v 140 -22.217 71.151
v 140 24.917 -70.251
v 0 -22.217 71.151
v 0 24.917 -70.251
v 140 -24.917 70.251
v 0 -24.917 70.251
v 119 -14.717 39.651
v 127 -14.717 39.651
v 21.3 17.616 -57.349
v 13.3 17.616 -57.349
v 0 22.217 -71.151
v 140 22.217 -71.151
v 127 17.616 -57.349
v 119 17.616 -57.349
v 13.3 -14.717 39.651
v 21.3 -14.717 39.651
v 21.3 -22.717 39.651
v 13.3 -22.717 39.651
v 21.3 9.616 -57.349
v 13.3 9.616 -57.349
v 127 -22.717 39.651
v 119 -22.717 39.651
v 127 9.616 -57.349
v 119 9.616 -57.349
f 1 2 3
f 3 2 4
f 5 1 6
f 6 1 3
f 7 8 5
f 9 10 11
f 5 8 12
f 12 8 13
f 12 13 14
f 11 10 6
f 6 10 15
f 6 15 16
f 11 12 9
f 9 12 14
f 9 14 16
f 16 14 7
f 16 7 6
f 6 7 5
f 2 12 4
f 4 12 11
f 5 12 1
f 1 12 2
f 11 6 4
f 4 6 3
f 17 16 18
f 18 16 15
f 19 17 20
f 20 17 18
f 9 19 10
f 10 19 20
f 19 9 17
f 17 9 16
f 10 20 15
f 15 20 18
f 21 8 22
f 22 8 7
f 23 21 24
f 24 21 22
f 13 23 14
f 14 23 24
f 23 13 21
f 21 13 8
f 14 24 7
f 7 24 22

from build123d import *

# Parameters (mm, degrees)
SALIENTE_EXTRUIR1_DEPTH = 140
SALIENTE_EXTRUIR2_START = 13.3
SALIENTE_EXTRUIR2_DEPTH = 8
SALIENTE_EXTRUIR3_START = 119
SALIENTE_EXTRUIR3_DEPTH = 8


with BuildPart() as part:
    # Croquis1 → Saliente-Extruir1 (new body)
    with BuildSketch(Plane(origin=(0, 0, 0), x_dir=(0, 0, -1), z_dir=(1, 0, 0))):
        Polygon((-71.151247354, -22.217082451), (-70.251247354, -24.917082451), (-39.651247354, -14.717082451), (57.348752646, 17.616250882), (71.151247354, 22.217082451), (70.251247354, 24.917082451), align=None)
    extrude(amount=SALIENTE_EXTRUIR1_DEPTH)

    # Croquis1<3> → Saliente-Extruir2 (add)
    with BuildSketch(Plane(origin=(0, 0, 0), x_dir=(0, 0, -1), z_dir=(1, 0, 0)).offset(SALIENTE_EXTRUIR2_START)):
        Polygon((57.348752646, 17.616250882), (-39.651247354, -14.717082451), (-39.651247354, -22.717082451), (57.348752646, 9.616250882), align=None)
    extrude(amount=SALIENTE_EXTRUIR2_DEPTH)

    # Croquis1<4> → Saliente-Extruir3 (add)
    with BuildSketch(Plane(origin=(0, 0, 0), x_dir=(0, 0, -1), z_dir=(1, 0, 0)).offset(SALIENTE_EXTRUIR3_START)):
        Polygon((57.348752646, 17.616250882), (-39.651247354, -14.717082451), (-39.651247354, -22.717082451), (57.348752646, 9.616250882), align=None)
    extrude(amount=SALIENTE_EXTRUIR3_DEPTH)


solid = part.part
